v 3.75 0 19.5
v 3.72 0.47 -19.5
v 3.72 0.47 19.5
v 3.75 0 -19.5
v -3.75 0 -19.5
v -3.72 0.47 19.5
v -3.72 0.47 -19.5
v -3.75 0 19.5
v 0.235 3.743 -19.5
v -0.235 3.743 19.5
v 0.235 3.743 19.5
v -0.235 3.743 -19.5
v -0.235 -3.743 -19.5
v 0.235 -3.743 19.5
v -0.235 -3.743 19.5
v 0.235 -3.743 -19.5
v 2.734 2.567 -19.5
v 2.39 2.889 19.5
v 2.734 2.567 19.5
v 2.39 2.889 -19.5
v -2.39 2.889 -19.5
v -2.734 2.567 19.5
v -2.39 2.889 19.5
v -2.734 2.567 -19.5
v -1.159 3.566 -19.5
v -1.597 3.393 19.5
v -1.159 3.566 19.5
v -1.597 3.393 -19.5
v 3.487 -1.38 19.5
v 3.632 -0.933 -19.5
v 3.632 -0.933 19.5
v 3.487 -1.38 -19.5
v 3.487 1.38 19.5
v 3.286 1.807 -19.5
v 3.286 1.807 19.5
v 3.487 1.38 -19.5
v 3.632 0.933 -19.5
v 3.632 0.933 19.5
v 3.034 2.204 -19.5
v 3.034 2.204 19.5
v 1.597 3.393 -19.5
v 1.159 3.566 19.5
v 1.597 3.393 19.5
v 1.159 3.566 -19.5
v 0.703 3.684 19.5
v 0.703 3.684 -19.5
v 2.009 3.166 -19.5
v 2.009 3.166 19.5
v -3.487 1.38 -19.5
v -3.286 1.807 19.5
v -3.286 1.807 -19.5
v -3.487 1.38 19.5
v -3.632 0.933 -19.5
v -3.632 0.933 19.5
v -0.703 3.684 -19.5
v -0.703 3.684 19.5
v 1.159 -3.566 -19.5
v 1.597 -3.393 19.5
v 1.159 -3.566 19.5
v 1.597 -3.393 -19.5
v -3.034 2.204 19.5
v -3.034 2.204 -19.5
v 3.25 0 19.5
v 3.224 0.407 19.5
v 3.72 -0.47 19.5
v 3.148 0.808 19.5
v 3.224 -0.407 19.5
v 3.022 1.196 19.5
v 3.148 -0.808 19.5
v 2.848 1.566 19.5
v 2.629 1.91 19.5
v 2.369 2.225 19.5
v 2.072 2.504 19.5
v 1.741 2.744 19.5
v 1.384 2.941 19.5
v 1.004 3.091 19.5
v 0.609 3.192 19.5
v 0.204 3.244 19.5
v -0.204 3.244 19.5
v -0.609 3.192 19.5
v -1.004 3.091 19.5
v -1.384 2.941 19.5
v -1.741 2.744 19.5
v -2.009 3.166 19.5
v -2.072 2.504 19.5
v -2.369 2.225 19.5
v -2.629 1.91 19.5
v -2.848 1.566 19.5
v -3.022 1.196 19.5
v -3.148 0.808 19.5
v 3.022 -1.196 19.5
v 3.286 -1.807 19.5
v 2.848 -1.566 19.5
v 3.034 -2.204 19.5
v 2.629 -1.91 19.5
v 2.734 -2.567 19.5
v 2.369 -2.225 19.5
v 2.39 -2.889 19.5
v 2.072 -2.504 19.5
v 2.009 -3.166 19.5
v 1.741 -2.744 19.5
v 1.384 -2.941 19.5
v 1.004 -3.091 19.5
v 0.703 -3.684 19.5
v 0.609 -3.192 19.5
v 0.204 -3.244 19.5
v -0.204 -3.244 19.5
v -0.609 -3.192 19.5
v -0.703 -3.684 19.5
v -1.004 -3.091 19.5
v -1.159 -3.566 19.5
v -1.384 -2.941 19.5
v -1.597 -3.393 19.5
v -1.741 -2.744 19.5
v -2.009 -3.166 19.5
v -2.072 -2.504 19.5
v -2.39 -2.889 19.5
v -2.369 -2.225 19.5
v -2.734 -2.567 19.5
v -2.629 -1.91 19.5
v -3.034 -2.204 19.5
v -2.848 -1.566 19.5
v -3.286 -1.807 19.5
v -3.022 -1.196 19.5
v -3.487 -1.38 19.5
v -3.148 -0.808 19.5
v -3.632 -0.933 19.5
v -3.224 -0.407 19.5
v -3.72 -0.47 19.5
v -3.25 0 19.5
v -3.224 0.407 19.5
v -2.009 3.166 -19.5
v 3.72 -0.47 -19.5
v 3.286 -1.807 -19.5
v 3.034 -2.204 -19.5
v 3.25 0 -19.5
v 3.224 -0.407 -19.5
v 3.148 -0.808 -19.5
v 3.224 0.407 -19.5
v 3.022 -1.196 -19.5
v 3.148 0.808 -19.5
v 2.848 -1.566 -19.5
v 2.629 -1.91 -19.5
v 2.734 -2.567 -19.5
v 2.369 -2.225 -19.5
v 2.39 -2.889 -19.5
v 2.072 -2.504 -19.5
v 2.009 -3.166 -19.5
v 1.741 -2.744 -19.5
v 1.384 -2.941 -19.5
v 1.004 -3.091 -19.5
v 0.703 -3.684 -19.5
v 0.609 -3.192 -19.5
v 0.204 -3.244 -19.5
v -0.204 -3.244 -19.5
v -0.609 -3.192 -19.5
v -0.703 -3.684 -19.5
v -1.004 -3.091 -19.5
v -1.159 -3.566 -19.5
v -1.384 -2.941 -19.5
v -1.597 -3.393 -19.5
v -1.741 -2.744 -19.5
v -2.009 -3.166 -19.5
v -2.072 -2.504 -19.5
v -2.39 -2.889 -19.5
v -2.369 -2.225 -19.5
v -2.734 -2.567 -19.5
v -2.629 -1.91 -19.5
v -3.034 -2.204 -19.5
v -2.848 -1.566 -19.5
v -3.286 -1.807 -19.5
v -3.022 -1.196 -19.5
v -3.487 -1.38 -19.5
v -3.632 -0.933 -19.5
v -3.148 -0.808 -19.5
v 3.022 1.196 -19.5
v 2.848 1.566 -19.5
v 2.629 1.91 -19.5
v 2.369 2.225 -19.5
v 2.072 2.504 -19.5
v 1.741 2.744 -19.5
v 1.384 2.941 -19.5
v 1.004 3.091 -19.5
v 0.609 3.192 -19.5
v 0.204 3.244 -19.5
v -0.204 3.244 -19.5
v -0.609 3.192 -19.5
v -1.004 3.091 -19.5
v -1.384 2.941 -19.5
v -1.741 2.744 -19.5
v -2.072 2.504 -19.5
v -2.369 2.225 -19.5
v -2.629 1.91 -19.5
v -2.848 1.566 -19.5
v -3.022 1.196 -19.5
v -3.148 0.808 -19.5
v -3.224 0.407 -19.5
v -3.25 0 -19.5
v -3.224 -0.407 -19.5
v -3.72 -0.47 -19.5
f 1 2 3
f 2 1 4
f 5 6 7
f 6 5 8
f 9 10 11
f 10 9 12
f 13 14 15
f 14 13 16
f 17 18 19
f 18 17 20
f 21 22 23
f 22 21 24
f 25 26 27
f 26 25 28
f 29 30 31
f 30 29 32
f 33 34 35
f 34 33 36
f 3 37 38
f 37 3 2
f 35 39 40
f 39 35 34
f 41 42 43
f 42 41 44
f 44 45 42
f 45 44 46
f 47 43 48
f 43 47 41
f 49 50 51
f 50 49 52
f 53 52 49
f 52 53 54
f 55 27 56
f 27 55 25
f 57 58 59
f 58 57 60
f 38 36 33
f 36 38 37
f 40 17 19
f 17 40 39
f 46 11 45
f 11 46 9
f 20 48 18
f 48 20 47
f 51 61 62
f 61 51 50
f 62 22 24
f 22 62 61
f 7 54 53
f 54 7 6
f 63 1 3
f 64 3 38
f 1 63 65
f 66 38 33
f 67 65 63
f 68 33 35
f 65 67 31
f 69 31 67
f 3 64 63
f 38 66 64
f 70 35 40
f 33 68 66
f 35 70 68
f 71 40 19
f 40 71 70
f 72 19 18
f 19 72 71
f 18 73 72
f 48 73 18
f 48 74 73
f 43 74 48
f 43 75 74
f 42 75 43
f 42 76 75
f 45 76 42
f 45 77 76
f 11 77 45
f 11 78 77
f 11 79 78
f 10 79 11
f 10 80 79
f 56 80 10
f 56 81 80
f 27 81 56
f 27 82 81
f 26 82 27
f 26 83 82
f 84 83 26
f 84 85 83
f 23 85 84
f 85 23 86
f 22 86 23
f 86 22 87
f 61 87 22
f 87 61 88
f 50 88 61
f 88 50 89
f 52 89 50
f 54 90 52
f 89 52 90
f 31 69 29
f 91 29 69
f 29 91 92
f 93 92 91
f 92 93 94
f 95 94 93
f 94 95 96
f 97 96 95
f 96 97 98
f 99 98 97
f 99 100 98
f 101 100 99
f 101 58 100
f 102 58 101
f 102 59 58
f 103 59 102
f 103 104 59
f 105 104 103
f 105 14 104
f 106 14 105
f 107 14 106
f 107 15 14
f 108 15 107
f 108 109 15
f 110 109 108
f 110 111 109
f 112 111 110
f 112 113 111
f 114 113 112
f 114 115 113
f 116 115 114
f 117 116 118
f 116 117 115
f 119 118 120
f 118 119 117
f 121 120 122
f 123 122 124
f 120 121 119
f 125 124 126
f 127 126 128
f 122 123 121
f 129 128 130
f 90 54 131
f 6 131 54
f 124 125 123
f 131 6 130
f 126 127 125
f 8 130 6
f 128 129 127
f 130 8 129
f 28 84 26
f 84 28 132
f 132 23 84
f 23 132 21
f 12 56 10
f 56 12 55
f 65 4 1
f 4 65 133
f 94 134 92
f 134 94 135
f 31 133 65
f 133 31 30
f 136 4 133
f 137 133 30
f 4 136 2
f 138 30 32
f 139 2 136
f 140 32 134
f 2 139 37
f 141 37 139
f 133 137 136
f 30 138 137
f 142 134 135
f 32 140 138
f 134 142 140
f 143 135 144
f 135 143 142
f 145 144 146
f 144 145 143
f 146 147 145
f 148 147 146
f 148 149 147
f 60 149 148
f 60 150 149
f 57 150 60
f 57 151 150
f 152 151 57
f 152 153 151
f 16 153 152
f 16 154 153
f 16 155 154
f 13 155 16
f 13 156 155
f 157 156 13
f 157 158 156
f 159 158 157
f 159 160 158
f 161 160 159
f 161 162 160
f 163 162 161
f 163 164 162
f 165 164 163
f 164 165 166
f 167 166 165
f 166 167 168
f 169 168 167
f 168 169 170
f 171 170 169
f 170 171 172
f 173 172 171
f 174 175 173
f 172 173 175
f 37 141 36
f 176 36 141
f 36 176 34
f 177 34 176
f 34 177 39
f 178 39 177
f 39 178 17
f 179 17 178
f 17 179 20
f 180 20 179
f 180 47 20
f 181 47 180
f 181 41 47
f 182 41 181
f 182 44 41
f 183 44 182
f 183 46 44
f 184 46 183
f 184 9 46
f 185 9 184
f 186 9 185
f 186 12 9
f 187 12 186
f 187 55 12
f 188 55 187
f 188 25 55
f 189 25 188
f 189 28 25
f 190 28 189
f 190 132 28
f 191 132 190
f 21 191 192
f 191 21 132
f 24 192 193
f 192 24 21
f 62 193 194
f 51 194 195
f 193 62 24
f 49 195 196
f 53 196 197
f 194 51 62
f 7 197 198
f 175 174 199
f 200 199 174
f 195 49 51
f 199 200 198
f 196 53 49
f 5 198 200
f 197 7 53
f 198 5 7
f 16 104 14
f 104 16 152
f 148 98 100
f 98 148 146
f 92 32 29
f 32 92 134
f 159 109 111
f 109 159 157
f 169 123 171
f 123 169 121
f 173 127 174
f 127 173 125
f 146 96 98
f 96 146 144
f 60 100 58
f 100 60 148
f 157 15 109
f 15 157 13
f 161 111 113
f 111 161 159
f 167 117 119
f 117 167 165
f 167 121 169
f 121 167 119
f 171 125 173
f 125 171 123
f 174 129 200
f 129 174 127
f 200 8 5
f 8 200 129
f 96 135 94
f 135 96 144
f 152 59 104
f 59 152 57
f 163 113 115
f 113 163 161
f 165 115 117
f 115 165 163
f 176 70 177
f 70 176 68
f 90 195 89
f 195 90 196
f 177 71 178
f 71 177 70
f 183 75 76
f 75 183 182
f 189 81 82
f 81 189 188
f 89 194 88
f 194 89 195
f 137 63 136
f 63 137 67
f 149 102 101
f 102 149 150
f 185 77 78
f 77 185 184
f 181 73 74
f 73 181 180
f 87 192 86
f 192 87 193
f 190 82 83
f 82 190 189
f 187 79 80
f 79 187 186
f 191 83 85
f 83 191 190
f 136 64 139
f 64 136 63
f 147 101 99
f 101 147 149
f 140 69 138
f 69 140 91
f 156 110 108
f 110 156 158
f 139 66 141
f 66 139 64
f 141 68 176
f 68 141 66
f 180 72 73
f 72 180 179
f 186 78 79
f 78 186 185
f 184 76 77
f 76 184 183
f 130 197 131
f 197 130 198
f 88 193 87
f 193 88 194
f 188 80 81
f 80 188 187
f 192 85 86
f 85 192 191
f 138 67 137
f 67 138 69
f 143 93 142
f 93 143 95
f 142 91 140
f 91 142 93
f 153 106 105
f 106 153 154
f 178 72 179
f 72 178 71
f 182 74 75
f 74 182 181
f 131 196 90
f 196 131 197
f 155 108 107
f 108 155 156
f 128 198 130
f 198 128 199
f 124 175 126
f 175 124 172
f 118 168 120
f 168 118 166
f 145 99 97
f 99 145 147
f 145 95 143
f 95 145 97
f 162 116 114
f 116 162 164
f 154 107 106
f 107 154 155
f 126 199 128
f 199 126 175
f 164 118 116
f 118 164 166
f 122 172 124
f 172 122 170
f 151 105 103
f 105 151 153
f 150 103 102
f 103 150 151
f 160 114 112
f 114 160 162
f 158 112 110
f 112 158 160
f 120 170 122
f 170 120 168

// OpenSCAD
$fn = 50;


difference() {
	union() {
		translate(v = [0, 0, -19.5000000000]) {
			cylinder(h = 39, r = 3.7500000000);
		}
	}
	union() {
		translate(v = [0, 0, -100.0000000000]) {
			cylinder(h = 200, r = 3.2500000000);
		}
	}
}
